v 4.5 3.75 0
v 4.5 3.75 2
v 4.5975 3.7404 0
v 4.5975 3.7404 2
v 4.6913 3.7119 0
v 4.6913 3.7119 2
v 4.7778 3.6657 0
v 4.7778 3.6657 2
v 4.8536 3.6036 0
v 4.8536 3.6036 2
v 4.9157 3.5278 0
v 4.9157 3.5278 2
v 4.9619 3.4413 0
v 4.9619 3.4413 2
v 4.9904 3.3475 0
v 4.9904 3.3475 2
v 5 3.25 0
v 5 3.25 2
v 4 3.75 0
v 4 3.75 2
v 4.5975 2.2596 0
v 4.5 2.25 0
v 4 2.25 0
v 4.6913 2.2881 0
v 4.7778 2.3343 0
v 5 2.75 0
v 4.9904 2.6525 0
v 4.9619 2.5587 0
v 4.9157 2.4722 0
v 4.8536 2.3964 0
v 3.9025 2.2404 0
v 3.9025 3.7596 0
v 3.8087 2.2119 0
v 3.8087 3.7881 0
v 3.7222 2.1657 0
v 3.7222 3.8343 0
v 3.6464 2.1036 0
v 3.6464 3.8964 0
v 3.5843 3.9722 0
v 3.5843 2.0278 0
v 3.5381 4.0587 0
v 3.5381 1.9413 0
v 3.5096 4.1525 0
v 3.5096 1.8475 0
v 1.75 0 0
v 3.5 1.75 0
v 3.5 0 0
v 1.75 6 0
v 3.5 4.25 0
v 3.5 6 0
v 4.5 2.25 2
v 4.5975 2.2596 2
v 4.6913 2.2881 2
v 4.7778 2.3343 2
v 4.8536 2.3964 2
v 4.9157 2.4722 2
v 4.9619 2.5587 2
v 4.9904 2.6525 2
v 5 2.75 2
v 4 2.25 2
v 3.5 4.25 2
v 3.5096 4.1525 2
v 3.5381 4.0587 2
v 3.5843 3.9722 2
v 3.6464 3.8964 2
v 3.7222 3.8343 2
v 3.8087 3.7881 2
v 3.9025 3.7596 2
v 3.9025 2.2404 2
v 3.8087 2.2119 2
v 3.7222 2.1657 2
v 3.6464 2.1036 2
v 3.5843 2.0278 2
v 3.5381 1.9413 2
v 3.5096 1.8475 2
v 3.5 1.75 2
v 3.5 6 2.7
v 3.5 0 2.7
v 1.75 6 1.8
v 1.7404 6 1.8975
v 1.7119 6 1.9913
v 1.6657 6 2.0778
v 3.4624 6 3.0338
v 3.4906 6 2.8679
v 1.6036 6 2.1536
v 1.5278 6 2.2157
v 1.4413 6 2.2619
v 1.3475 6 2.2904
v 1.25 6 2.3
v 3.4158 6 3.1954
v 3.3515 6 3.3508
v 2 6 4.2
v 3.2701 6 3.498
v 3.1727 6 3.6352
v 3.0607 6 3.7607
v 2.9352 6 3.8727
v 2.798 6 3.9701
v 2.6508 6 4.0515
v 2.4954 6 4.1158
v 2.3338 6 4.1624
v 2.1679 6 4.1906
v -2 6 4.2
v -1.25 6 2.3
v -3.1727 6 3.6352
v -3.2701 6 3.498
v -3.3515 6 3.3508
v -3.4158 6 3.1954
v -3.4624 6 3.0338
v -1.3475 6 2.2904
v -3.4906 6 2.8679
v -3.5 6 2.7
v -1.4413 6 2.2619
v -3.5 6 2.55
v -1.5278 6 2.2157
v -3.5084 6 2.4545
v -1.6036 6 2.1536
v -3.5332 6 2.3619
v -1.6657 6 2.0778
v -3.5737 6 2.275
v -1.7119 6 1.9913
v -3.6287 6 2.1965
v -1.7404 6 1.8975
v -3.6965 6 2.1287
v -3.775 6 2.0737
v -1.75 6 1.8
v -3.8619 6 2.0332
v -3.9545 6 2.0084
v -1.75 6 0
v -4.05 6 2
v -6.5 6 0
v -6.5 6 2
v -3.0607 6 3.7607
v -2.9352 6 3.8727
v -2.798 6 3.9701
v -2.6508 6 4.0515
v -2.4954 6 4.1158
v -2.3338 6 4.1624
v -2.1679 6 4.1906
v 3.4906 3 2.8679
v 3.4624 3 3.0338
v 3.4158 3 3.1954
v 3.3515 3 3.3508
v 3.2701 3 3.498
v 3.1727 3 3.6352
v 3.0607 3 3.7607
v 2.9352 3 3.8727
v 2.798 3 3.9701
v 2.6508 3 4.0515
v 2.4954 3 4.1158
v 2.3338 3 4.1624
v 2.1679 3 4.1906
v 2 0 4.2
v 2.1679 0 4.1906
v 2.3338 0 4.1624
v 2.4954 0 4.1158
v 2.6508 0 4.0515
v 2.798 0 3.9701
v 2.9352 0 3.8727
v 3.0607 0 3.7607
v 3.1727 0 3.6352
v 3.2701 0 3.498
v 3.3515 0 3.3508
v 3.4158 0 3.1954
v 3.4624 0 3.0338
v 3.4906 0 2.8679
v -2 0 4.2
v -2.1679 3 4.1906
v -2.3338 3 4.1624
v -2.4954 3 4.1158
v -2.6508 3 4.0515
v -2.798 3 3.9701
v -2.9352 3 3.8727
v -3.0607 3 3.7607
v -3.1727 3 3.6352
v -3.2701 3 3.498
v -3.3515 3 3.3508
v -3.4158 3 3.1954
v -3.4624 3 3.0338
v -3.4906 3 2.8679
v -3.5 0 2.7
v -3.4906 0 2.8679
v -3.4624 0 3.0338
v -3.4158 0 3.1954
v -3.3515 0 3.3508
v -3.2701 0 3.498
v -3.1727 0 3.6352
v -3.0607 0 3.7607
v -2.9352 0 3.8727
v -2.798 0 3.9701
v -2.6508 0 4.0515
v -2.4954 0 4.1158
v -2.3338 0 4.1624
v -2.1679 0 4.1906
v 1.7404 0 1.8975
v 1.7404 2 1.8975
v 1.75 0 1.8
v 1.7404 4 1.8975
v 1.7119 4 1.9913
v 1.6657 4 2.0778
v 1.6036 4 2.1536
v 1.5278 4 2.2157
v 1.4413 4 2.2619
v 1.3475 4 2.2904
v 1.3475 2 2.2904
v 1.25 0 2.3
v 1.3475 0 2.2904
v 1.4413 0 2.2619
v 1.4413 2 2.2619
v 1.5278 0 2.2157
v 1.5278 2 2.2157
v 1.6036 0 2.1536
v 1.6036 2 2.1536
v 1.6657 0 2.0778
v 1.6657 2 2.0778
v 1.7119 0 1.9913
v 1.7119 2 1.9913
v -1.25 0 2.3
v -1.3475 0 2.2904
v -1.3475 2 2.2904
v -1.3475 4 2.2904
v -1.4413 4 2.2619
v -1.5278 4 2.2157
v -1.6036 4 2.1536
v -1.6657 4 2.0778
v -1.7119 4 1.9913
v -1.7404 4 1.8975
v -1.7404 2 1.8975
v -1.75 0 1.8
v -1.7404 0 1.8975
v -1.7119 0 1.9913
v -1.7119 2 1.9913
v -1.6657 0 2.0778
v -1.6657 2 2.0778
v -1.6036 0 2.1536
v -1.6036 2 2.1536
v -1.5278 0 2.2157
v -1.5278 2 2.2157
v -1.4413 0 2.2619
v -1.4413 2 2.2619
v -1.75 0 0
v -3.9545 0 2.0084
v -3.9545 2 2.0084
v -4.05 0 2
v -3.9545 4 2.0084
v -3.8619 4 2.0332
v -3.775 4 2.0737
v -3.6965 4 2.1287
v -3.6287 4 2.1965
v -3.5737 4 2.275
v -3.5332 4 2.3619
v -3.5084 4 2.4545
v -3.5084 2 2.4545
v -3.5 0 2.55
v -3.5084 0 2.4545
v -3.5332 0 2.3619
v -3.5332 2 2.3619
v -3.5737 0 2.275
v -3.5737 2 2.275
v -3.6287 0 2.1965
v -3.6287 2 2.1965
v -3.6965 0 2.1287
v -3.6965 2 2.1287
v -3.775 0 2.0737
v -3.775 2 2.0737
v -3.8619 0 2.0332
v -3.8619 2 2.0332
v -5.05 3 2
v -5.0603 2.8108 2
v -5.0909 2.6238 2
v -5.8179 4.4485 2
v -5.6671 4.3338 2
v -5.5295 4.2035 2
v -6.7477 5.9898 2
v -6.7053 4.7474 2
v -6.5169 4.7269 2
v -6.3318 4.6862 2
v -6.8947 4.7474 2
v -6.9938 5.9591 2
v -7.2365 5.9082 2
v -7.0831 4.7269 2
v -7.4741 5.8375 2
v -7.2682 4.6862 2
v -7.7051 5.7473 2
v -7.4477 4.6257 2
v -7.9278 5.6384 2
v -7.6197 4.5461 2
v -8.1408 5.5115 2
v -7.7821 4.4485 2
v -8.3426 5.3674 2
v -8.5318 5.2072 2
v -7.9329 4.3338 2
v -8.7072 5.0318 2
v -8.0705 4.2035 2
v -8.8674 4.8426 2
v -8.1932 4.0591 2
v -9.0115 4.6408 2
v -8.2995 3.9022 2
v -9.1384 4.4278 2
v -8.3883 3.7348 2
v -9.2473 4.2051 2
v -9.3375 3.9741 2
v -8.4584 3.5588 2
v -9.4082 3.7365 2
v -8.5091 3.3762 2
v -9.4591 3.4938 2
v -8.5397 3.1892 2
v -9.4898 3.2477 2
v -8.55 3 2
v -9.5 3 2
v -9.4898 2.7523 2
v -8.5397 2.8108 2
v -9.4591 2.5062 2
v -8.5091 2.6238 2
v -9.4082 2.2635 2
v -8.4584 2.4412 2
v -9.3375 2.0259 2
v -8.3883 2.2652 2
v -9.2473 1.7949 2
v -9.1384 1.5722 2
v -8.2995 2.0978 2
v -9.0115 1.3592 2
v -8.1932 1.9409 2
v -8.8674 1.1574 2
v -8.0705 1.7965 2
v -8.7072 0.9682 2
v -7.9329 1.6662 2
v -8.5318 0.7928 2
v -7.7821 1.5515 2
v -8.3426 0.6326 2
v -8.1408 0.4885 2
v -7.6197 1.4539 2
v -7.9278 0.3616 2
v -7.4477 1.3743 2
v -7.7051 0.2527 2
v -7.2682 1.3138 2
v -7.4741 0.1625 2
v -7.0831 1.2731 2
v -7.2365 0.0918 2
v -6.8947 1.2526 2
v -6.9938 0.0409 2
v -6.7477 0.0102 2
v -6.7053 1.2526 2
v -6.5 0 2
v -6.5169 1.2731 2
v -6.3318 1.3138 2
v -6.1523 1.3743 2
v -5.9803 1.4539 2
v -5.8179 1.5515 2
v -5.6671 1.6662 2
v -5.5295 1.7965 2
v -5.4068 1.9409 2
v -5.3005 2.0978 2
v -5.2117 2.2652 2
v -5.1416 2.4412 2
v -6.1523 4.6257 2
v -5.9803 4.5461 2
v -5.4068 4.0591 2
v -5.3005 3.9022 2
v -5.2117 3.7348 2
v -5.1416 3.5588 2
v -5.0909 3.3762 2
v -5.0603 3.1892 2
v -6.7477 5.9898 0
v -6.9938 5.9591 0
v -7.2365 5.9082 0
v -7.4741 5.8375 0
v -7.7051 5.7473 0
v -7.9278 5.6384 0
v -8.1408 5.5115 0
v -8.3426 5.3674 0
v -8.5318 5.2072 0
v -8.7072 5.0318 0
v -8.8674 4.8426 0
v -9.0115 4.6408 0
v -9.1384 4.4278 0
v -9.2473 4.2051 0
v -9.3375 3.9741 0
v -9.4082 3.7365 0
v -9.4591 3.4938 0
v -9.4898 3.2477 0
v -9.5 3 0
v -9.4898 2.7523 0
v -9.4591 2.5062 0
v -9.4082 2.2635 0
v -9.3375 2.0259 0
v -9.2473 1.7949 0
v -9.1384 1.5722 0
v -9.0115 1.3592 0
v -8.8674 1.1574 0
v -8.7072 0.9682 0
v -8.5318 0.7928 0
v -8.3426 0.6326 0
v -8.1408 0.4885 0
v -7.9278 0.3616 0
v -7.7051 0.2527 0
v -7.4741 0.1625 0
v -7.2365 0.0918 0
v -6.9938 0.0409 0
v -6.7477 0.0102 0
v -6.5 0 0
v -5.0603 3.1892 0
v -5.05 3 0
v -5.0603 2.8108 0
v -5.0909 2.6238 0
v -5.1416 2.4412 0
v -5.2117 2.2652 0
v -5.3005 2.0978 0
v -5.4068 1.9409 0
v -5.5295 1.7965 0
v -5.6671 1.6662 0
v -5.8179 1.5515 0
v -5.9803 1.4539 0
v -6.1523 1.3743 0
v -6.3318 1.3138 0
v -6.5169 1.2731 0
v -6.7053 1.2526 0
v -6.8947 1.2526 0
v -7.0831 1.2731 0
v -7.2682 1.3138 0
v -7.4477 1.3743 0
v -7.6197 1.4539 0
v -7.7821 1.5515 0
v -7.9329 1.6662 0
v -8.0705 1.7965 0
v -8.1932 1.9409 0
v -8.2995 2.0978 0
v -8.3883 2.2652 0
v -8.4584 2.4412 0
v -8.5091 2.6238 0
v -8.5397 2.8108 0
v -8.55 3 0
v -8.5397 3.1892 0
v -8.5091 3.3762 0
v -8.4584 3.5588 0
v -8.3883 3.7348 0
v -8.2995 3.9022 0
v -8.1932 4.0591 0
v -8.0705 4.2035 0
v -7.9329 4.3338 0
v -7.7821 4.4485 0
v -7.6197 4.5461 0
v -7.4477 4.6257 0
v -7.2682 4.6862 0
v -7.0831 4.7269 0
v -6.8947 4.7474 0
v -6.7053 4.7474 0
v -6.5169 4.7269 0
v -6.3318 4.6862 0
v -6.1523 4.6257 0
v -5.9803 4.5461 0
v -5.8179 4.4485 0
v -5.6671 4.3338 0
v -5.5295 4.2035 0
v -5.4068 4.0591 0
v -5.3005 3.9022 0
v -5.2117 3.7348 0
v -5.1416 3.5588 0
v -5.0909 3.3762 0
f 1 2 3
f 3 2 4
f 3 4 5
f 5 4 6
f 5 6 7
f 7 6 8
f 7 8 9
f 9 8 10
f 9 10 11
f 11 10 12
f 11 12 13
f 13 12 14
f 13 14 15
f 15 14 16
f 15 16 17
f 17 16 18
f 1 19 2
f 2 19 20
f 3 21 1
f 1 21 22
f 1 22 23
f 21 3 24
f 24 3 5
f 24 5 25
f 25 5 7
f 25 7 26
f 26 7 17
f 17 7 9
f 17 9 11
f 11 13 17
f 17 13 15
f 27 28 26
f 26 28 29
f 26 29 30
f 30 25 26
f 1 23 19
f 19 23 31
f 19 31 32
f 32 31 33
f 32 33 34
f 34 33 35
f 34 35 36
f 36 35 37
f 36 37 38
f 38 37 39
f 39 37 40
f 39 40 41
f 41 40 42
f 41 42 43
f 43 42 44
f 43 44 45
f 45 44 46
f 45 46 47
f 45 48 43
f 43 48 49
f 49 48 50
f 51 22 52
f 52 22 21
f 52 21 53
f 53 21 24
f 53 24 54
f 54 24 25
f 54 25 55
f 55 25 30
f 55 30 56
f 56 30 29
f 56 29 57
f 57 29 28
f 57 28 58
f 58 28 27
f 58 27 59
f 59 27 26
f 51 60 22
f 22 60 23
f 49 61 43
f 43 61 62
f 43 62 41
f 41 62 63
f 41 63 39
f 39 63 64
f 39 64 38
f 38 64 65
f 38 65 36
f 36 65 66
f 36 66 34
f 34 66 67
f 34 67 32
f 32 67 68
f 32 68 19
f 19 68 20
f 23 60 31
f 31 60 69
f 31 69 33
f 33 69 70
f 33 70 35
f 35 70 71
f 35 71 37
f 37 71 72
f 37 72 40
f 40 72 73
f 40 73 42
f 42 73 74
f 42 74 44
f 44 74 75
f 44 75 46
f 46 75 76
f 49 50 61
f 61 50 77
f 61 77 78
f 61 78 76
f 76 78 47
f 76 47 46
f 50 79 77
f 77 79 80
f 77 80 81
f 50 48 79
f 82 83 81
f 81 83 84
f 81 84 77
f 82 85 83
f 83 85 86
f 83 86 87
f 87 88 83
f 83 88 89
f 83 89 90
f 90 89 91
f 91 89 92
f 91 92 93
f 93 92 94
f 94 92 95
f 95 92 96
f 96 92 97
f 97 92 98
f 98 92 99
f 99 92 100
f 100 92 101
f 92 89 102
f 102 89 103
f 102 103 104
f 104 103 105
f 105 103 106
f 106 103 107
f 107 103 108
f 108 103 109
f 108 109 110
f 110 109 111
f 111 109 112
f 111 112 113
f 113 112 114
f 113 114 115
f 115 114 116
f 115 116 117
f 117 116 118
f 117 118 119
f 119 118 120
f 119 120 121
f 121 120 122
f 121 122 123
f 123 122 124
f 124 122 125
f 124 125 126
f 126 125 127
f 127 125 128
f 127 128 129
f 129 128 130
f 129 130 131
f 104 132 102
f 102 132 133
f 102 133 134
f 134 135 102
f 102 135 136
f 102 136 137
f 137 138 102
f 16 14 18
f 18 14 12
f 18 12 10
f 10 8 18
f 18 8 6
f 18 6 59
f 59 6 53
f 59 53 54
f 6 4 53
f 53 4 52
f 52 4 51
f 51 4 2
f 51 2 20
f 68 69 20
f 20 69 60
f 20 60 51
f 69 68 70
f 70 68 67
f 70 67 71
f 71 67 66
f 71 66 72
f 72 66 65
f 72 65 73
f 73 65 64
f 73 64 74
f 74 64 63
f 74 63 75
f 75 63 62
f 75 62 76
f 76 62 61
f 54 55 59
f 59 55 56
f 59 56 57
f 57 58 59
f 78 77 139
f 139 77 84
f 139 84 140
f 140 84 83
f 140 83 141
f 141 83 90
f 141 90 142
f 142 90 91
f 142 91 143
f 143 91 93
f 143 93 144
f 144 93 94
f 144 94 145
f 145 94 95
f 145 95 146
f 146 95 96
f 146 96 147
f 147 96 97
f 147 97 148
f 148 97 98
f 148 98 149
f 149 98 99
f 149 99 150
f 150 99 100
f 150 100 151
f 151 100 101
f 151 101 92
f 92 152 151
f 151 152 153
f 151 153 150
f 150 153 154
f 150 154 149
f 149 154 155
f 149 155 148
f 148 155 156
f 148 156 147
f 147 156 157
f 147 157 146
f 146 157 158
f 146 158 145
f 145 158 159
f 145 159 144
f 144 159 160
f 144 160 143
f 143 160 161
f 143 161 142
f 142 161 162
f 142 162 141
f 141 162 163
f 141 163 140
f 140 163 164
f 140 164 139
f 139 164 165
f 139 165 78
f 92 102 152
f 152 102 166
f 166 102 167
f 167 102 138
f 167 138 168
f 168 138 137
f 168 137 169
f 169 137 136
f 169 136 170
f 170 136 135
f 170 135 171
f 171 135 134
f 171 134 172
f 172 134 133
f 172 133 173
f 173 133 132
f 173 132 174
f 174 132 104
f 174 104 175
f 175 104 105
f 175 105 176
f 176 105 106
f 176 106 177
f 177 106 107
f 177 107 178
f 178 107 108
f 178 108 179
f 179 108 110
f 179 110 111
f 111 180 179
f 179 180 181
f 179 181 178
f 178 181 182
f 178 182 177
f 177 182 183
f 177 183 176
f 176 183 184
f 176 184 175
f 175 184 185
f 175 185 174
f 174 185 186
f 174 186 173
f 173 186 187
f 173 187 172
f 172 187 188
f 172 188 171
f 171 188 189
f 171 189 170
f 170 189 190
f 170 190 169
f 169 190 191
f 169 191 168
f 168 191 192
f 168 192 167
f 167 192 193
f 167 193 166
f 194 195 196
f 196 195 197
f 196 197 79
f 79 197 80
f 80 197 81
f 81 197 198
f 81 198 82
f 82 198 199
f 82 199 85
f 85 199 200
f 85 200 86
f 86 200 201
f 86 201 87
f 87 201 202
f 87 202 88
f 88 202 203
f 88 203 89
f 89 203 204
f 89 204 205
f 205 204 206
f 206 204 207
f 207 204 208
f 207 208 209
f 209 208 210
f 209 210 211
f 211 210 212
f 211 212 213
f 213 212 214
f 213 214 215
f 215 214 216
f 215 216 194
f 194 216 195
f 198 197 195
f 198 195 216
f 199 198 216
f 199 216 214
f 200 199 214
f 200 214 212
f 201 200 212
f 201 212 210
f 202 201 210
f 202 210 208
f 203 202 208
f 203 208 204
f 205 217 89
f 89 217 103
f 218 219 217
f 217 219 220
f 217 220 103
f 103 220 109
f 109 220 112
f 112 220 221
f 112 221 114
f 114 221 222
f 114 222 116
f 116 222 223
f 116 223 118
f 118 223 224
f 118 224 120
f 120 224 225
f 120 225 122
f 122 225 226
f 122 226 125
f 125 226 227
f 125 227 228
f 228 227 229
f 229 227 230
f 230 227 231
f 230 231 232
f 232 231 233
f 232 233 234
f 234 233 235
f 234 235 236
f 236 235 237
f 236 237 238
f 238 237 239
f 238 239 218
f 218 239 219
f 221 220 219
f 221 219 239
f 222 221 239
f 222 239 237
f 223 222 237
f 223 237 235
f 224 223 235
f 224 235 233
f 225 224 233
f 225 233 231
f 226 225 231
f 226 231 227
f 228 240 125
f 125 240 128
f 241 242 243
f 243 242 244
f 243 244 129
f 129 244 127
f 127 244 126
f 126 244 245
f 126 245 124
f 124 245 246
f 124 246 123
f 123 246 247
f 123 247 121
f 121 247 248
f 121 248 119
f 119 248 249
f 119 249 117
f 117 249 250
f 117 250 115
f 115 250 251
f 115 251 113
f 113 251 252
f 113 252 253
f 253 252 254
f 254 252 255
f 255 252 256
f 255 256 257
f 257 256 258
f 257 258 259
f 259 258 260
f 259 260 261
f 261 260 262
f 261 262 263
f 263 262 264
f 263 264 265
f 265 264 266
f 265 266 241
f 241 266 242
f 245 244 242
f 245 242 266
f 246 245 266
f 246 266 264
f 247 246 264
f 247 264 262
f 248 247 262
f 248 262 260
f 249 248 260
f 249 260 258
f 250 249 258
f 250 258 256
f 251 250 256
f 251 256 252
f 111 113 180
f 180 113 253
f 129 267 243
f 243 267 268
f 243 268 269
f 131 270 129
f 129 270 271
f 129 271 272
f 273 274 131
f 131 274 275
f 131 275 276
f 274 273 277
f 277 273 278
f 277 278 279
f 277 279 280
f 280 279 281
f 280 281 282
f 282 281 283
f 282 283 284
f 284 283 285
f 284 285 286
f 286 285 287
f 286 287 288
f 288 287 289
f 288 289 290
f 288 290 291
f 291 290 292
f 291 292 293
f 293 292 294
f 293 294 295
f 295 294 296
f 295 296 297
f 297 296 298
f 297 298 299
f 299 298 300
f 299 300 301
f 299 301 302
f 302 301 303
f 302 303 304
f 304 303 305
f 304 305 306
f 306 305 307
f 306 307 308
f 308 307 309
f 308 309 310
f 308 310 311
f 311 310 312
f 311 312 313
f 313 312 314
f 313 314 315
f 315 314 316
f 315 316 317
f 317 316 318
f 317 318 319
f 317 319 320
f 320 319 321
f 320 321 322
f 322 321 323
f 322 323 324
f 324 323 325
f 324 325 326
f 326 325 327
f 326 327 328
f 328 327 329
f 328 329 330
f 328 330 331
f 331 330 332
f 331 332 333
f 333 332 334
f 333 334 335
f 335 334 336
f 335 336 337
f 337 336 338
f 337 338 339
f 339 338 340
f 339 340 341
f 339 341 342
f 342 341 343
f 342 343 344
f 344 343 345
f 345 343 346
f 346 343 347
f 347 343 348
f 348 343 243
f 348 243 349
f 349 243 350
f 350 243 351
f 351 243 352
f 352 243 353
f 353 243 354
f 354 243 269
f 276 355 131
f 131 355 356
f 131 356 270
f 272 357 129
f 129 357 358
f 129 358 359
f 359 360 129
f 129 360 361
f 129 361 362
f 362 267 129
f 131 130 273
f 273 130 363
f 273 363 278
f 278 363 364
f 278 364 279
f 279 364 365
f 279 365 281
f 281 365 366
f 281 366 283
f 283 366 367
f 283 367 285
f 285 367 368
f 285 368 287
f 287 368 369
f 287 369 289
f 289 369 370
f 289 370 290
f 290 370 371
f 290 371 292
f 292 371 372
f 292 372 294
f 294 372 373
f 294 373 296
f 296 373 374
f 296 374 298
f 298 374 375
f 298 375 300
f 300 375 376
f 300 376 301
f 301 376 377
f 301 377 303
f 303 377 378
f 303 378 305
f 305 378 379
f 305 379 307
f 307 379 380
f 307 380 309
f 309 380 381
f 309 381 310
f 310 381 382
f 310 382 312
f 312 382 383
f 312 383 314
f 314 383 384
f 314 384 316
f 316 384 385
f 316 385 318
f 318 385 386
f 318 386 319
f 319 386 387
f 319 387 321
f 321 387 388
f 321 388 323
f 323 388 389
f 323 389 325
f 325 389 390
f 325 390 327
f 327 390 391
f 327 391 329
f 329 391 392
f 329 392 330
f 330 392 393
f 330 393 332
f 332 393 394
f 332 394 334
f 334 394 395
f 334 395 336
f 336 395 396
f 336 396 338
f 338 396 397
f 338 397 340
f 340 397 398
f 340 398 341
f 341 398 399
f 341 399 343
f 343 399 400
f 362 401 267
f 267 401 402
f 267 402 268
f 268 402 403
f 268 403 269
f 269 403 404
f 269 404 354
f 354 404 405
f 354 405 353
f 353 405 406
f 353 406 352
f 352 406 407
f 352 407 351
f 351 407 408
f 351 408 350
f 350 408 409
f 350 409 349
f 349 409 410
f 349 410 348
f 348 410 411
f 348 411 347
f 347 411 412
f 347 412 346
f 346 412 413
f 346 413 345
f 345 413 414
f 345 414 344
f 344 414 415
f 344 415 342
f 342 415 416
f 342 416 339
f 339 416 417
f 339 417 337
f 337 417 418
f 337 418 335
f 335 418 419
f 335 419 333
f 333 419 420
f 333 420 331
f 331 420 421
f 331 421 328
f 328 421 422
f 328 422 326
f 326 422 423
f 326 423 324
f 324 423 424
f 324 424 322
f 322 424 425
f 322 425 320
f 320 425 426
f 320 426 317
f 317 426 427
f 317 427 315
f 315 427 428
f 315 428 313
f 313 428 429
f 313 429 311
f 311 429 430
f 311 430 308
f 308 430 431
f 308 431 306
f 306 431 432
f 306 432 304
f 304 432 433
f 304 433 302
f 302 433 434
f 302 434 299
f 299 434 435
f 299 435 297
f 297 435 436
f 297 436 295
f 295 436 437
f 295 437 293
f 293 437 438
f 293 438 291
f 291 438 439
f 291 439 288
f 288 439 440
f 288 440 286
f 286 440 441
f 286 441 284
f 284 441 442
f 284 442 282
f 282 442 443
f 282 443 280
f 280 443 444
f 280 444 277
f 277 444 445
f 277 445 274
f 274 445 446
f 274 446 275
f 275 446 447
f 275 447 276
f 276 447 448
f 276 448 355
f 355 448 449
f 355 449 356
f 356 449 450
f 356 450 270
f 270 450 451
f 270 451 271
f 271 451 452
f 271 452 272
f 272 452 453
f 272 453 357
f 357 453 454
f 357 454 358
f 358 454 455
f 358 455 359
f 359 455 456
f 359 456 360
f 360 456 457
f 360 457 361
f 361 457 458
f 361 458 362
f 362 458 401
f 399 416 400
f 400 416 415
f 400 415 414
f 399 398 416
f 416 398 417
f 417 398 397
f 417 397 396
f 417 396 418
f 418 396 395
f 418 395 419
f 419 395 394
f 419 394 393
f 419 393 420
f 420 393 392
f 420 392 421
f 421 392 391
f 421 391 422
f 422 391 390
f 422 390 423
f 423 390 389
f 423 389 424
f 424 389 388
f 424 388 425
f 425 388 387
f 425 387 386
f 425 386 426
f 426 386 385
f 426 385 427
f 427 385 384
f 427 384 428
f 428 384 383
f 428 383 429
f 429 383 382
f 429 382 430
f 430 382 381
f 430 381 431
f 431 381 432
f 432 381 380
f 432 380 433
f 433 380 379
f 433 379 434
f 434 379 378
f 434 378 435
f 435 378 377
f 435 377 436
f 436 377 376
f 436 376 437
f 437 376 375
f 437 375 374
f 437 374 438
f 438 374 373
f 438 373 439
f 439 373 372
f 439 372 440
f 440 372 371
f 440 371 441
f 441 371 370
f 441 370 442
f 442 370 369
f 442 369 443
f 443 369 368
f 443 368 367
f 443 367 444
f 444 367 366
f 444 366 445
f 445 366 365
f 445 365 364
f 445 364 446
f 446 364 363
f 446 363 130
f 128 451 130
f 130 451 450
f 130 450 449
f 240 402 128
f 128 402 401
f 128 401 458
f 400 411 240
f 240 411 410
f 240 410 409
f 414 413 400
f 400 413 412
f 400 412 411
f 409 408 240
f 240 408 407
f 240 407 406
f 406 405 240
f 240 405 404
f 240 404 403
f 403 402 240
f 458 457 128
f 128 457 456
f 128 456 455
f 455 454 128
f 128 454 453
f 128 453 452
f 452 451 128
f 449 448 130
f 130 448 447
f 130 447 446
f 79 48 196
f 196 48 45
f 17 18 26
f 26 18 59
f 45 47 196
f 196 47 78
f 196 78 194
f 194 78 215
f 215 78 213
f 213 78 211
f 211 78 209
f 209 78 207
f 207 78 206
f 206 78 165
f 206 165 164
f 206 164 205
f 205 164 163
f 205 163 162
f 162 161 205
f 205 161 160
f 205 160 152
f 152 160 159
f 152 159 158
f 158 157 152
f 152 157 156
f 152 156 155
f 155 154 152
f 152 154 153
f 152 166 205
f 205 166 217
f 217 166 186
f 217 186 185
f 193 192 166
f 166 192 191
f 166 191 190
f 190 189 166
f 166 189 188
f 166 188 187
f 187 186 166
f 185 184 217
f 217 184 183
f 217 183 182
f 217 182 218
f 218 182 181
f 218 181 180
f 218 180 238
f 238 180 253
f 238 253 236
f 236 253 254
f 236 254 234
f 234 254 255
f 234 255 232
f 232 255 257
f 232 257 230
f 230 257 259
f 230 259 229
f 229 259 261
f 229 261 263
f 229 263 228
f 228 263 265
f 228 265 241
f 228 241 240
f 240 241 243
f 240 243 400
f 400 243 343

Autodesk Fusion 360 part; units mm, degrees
sketch "Skizze8" plane through (0, 0, 0) normal (0, 1, 0) x (1, 0, 0)
  line L0 (-9.5, 0) -> (-1.75, 0)
  line L1 (-1.75, 0) -> (-1.75, -2.3)
  line L2 (-1.75, -2.3) -> (1.75, -2.3)
  line L3 (1.75, -2.3) -> (1.75, 0)
  line L4 (1.75, 0) -> (3.5, 0)
  line L5 (3.5, -2) -> (3.5, -4.2)
  line L6 (3.5, -4.2) -> (-3.5, -4.2)
  line L7 (-3.5, -4.2) -> (-3.5, -2)
  line L8 (-3.5, -2) -> (-9.5, -2)
  line L9 (-9.5, -2) -> (-9.5, 0)
  line L10 (3.5, 0) -> (5, 0)
  line L11 (5, 0) -> (5, -2)
  line L12 (5, -2) -> (3.5, -2)
  dimension "d100" = 3.5
  dimension "d101" = 1.75
  dimension "d102" = 2.3
  dimension "d103" = 7
  dimension "d104" = 3.5
  dimension "d105" = 4.2
  dimension "d110" = 2
  dimension "d123" = 6
  dimension "d134" = 1.5
extrude "Extrusion5" add sketch "Skizze8" along normal blind 6
sketch "Skizze9" plane through (0, 0, 0) normal (0, 0, 1) x (1, 0, 0)
  line L0 (-9.5, 0) -> (-9.5, 6)
  line L1 (-3.5, 0) -> (-9.5, 0)
  line L2 (-3.5, 0) -> (-3.5, 6)
  line L3 (0, 1.75) -> (0, 22.5)
  point P0 (-6.8, 3)
  point P1 (6.8, 3)
  dimension "d113" = 6
  dimension "d114" = 3
  dimension "d120" = 9.5
  dimension "d128" = 3.3
hole "Bohrung4" at (-6.8, 3, 0) at (6.8, 3, 0) direction (0, 0, 1) diameter 3.5 depth 5 tip angle 118
fillet "Abrundung7" radius 3 2 edges at (-9.5, 0, 1) (-9.5, 6, 1)
fillet "Abrundung8" radius 0.55 1 edges at (-3.5, 3, 2)
fillet "Abrundung9" radius 0.5 2 edges at (-1.75, 3, 2.3) (1.75, 3, 2.3)
fillet "Abrundung10" radius 1.5 2 edges at (-3.5, 3, 4.2) (3.5, 3, 4.2)
sketch "Skizze10" plane through (0, 0, 0) normal (0, 0, 1) x (1, 0, 0)
  line L0 (3.5, 0) -> (5, 0)
  line L1 (5, 0) -> (5, 2.25)
  line L2 (5, 2.25) -> (3.5, 2.25)
  line L3 (3.5, 2.25) -> (3.5, 0)
  line L4 (3.5, 6) -> (5, 6)
  line L5 (5, 6) -> (5, 3.75)
  line L6 (5, 3.75) -> (3.5, 3.75)
  line L7 (3.5, 3.75) -> (3.5, 6)
  line L8 (3.5, 0) -> (5, 0)
  line L9 (5, 0) -> (5, 6)
  line L10 (5, 6) -> (3.5, 6)
  line L11 (3.5, 6) -> (3.5, 0)
  line L12 (3.5, 6) -> (5, 6)
  line L13 (5, 0) -> (3.5, 0)
  dimension "d135" = 1.5
  dimension "d136" = 1.5
  dimension "d141" = 1.5
extrude "Extrusion6" cut sketch "Skizze10" along normal up to surface (2 mm away) contours L0 L1 L2 L3 L8 L9 L11 L13 | L4 L5 L6 L7 L9 L10 L11 L12
fillet "Abrundung11" radius 0.5 4 edges at (3.5, 2.25, 1) (3.5, 3.75, 1) (5, 2.25, 1) (5, 3.75, 1)
equation "d101 = d100 / 2"
equation "d104 = d103 / 2"
equation "d106 = 2 mm"
equation "d110 = d106"
equation "d114 = d113 / 2"
